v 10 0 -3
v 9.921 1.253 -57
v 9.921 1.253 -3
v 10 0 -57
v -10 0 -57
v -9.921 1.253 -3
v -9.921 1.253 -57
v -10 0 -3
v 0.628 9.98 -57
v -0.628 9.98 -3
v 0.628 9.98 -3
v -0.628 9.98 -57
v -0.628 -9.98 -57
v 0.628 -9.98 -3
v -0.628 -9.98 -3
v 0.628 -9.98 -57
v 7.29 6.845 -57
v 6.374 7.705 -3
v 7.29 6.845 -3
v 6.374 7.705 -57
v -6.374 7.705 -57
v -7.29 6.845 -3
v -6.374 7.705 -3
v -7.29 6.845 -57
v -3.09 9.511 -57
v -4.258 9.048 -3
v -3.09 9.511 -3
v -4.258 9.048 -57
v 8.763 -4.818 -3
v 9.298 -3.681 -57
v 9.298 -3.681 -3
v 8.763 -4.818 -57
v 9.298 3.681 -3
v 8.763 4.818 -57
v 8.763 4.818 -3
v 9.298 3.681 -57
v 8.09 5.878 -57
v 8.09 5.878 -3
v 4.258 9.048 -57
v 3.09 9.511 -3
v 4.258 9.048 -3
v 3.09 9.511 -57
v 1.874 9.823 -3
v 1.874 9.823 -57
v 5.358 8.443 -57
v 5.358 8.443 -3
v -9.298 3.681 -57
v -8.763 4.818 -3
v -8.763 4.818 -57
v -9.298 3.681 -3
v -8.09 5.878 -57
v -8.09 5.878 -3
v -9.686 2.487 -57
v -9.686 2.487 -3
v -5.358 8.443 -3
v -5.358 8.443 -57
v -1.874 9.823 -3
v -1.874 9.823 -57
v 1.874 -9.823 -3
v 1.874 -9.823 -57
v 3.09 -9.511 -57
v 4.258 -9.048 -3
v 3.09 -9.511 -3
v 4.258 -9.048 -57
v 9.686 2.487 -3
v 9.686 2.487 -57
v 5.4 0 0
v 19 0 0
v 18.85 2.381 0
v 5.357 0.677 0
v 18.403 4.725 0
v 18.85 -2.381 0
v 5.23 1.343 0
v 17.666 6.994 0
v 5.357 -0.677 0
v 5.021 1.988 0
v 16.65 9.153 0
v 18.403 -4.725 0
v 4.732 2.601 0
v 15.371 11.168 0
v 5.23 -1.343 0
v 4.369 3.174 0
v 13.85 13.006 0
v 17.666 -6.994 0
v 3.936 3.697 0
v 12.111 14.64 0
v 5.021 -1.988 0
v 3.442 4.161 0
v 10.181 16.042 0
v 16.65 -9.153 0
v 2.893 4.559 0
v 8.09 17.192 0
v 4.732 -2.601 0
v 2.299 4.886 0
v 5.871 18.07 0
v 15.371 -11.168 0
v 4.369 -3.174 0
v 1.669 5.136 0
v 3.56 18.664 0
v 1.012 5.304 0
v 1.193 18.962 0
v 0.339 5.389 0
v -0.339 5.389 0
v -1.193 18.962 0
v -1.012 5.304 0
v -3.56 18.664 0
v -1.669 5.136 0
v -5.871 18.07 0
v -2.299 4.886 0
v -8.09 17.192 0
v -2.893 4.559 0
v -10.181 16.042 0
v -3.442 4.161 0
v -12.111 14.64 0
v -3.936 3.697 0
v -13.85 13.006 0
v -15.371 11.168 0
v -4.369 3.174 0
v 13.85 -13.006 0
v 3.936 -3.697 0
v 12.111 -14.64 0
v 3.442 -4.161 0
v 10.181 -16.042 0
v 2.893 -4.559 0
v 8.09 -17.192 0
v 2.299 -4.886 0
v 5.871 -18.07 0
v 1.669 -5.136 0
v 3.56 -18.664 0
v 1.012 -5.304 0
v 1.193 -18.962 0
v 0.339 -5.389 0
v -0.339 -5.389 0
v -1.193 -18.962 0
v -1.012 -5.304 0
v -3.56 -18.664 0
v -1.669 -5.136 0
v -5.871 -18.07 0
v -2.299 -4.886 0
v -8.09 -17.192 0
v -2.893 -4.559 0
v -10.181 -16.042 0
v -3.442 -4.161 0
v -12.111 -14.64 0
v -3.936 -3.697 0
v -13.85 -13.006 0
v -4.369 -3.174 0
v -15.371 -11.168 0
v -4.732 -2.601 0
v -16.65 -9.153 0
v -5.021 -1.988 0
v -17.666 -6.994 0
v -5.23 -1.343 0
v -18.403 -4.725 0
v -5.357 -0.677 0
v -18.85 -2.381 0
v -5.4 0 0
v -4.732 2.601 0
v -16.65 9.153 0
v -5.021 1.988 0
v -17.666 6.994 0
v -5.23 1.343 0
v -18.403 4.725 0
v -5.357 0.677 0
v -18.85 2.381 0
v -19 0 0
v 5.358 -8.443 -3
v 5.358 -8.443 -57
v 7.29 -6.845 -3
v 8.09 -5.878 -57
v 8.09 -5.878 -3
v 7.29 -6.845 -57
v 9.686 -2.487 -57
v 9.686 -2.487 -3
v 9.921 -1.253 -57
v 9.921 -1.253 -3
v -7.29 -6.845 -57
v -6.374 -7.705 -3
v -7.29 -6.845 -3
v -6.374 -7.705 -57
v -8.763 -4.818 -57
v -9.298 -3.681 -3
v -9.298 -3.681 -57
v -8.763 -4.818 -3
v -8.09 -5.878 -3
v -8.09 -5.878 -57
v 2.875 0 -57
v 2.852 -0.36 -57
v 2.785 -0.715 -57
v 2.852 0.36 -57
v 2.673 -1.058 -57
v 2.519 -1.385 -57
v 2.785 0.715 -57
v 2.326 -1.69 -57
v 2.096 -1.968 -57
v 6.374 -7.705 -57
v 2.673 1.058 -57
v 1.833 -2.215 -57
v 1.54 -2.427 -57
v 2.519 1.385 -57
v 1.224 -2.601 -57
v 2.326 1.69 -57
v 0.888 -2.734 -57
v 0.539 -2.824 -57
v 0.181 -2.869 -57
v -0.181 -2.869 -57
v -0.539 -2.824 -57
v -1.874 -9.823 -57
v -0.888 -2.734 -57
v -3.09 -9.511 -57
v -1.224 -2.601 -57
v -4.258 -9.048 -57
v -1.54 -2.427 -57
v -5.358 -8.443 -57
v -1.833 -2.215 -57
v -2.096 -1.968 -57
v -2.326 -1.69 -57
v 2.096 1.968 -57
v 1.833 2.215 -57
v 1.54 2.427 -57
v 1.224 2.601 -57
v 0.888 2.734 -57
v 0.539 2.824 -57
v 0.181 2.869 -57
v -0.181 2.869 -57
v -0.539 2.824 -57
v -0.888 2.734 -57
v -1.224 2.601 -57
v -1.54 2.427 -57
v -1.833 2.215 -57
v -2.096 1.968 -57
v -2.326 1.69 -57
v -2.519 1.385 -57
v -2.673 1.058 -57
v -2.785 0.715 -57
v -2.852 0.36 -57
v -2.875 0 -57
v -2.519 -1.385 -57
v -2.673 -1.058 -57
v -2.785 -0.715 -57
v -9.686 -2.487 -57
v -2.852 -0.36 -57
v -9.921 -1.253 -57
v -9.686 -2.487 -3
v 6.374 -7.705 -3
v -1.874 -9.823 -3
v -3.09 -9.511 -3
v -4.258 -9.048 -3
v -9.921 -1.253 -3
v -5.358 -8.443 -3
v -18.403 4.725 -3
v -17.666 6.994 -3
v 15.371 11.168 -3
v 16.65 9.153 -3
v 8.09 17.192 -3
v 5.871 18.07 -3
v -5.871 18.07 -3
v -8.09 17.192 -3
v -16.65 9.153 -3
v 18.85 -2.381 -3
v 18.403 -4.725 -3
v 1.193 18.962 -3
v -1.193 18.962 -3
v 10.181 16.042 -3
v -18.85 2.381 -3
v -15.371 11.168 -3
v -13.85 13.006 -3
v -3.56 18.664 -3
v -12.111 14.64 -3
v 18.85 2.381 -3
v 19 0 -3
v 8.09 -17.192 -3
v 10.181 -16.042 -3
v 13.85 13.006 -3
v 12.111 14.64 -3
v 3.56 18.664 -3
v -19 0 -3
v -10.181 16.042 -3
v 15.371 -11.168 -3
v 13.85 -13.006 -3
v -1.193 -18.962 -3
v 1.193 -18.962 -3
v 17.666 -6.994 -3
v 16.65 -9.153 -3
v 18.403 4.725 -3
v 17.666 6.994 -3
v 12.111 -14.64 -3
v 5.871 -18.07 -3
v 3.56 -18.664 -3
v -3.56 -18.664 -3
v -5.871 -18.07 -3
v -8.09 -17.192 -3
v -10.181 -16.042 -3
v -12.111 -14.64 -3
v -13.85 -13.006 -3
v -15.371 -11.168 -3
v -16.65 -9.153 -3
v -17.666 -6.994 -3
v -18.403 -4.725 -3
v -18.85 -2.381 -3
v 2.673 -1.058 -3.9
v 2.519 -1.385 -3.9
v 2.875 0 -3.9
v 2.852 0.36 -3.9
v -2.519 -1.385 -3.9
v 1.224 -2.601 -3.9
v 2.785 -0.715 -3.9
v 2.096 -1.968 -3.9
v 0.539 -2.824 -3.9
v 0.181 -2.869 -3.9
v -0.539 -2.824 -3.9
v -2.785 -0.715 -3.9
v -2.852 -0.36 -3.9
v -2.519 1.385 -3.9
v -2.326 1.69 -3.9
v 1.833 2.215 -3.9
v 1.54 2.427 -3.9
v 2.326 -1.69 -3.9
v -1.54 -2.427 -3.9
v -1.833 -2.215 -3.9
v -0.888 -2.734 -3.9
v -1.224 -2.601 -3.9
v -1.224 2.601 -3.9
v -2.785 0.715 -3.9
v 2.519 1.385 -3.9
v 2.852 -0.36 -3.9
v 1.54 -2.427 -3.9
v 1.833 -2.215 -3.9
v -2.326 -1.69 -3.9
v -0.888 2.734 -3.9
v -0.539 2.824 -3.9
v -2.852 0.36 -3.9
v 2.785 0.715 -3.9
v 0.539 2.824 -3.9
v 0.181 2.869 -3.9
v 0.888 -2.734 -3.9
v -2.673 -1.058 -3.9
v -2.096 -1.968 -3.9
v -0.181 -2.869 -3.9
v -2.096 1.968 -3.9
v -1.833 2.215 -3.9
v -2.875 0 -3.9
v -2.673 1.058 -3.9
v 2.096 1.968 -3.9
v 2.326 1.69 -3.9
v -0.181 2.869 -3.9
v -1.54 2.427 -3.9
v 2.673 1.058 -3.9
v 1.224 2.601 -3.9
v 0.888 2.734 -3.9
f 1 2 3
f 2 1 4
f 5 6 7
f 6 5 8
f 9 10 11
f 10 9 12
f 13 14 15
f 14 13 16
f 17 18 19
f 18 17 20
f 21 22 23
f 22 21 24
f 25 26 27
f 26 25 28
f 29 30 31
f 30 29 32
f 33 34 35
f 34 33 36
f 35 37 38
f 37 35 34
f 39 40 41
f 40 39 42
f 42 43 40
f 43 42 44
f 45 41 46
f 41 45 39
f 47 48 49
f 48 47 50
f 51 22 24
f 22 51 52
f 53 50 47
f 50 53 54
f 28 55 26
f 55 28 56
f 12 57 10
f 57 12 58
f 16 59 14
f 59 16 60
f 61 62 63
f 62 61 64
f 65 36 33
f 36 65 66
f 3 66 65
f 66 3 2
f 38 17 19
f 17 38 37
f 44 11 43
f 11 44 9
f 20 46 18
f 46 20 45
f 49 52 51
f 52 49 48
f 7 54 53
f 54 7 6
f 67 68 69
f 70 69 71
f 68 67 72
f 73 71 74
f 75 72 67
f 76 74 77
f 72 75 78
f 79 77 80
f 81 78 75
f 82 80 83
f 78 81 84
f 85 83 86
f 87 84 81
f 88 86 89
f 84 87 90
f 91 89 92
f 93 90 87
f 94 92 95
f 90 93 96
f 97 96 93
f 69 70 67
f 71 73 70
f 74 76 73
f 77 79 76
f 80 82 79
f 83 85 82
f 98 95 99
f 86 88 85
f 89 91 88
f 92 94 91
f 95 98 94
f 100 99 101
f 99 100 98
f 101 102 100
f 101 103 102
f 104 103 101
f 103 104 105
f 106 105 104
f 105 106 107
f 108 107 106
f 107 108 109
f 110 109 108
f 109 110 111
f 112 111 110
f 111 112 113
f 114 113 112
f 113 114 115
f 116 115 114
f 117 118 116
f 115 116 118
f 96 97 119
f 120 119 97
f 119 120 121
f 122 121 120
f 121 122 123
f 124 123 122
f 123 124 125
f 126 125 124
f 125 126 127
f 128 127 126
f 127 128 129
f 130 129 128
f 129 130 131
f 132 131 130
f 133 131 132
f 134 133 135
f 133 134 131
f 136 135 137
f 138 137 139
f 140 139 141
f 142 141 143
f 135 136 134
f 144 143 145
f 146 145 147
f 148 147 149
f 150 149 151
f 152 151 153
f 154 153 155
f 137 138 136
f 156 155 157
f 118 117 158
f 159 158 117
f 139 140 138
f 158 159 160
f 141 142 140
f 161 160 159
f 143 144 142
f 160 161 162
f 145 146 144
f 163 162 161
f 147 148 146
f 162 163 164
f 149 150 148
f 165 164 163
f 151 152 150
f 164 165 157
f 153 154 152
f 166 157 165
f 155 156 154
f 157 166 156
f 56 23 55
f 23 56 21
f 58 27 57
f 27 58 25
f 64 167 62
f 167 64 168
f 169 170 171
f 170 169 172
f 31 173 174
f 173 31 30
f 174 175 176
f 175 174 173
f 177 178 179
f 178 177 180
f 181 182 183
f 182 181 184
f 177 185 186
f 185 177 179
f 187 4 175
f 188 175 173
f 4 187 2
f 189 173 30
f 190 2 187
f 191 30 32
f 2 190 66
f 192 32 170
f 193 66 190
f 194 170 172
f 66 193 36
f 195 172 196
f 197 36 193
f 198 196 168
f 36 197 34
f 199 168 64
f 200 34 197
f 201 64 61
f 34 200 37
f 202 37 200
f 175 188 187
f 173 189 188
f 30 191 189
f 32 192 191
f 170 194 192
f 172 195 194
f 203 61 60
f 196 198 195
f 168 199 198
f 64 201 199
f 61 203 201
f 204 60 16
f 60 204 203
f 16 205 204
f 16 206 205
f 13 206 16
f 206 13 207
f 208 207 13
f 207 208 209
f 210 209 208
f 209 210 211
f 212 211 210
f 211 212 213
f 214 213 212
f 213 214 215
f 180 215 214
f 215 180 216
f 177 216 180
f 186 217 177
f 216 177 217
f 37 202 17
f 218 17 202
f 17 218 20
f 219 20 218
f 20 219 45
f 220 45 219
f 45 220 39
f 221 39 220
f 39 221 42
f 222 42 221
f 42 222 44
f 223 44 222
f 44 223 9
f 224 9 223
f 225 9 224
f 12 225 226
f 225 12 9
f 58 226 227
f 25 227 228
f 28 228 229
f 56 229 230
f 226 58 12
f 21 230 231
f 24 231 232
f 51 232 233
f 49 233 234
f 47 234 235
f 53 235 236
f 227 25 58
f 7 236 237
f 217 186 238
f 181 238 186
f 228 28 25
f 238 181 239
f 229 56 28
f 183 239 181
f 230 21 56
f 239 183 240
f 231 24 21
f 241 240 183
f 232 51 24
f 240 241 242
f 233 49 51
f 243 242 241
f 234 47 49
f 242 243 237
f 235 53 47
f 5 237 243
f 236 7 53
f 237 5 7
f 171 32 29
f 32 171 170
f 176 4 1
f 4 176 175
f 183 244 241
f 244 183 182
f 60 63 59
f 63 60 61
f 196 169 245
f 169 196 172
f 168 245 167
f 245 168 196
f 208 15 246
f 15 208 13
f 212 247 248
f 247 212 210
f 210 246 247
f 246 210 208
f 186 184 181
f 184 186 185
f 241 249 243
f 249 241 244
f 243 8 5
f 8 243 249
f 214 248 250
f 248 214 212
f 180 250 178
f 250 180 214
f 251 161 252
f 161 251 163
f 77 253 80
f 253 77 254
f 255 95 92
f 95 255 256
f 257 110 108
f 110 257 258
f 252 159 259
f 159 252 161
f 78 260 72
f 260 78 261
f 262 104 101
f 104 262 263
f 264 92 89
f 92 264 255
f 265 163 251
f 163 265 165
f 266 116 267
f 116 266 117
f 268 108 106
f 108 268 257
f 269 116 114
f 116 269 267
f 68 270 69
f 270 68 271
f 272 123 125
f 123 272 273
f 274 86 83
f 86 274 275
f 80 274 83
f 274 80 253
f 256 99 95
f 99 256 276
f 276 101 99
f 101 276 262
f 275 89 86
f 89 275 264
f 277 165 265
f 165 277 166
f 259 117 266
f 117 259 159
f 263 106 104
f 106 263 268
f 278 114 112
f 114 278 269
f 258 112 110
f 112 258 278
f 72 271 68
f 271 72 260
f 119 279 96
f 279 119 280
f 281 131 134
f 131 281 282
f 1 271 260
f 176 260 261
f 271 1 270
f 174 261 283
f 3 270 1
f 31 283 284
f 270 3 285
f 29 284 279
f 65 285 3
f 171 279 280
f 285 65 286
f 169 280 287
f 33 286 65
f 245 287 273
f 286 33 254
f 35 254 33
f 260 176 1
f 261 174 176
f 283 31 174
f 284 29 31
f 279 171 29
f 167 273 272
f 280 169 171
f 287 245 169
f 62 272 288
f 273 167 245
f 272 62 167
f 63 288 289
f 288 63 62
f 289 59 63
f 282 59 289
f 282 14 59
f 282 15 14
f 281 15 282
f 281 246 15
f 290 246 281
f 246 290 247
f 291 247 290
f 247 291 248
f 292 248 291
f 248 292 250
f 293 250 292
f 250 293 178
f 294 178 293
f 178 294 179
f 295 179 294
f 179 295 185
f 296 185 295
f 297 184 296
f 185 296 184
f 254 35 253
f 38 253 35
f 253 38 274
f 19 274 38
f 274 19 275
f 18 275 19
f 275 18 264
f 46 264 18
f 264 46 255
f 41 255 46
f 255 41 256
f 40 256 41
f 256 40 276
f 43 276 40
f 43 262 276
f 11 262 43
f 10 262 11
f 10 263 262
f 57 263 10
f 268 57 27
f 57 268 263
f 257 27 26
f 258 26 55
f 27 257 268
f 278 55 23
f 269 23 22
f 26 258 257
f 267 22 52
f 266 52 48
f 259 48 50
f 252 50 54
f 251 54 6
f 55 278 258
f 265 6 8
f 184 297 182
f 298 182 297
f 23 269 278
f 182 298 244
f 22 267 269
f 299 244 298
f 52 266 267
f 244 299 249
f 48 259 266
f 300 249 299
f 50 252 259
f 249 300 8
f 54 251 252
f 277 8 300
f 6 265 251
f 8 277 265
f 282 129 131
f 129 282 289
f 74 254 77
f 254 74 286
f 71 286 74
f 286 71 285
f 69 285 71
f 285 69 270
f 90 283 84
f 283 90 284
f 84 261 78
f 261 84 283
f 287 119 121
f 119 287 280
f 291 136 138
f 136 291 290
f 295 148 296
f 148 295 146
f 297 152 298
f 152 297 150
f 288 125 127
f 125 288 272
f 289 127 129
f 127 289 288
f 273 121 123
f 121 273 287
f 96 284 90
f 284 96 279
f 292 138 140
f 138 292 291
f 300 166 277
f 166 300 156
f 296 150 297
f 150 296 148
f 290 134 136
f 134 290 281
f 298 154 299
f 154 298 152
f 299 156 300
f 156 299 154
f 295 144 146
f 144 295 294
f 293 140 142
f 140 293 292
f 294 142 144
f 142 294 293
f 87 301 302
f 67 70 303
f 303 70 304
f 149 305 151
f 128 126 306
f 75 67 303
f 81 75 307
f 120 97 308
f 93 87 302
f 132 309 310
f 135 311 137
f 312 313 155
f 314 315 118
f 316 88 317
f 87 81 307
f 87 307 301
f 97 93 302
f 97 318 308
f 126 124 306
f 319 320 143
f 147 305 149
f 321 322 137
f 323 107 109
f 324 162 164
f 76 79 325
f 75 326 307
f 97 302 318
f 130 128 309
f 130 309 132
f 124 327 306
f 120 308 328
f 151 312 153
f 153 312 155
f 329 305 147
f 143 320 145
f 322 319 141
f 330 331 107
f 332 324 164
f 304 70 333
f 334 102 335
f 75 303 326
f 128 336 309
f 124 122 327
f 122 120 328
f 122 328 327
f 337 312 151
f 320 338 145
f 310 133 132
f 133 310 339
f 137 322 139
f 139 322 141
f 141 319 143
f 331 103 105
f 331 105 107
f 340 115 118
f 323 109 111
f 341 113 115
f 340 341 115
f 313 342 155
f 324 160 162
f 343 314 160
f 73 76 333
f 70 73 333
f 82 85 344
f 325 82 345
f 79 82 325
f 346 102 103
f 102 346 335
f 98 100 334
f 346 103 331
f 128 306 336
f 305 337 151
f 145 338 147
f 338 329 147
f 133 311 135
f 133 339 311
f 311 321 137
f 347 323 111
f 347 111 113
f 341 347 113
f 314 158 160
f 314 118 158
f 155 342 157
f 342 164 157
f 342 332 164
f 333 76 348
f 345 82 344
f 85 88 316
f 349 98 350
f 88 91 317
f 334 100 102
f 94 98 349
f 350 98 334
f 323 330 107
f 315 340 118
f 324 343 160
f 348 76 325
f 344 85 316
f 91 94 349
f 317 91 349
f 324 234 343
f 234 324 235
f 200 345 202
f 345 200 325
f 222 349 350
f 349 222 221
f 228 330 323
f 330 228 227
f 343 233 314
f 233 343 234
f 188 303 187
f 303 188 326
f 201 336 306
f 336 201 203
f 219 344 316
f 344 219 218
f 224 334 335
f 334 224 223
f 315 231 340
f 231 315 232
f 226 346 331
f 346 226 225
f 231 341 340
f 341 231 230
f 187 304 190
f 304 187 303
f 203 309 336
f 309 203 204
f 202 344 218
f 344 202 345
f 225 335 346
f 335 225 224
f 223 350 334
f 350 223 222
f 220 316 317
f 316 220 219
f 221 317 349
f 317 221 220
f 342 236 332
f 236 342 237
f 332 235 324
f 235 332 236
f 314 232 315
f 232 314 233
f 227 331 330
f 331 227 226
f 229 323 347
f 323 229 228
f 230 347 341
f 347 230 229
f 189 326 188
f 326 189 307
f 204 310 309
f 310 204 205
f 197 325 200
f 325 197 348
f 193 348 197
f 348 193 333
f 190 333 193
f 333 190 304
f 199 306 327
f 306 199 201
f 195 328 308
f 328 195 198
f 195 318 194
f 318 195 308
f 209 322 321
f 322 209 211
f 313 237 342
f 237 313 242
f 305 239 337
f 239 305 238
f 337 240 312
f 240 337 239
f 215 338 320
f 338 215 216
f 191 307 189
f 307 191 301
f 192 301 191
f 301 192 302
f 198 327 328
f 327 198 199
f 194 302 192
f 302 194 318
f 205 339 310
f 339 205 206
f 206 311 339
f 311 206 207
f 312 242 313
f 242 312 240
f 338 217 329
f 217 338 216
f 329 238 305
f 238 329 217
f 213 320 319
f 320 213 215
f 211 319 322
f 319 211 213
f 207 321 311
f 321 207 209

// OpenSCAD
$fn = 50;


difference() {
	union() {
		translate(v = [0, 0, -57.0000000000]) {
			cylinder(h = 57, r = 10.0000000000);
		}
		translate(v = [0, 0, -3.0000000000]) {
			cylinder(h = 3, r = 19.0000000000);
		}
	}
	union() {
		translate(v = [0, 0, 0]) {
			rotate(a = [0, 0, 0]) {
				difference() {
					union() {
						#translate(v = [0, 0, -57.0000000000]) {
							cylinder(h = 57, r = 2.6000000000);
						}
						#translate(v = [0, 0, -3.9000000000]) {
							cylinder(h = 3.9000000000, r = 10.0000000000, r1 = 2.8750000000, r2 = 5.4000000000);
						}
						#translate(v = [0, 0, -57.0000000000]) {
							cylinder(h = 57, r = 2.8750000000);
						}
						#translate(v = [0, 0, -57.0000000000]) {
							cylinder(h = 57, r = 2.6000000000);
						}
					}
					union();
				}
			}
		}
	}
}
